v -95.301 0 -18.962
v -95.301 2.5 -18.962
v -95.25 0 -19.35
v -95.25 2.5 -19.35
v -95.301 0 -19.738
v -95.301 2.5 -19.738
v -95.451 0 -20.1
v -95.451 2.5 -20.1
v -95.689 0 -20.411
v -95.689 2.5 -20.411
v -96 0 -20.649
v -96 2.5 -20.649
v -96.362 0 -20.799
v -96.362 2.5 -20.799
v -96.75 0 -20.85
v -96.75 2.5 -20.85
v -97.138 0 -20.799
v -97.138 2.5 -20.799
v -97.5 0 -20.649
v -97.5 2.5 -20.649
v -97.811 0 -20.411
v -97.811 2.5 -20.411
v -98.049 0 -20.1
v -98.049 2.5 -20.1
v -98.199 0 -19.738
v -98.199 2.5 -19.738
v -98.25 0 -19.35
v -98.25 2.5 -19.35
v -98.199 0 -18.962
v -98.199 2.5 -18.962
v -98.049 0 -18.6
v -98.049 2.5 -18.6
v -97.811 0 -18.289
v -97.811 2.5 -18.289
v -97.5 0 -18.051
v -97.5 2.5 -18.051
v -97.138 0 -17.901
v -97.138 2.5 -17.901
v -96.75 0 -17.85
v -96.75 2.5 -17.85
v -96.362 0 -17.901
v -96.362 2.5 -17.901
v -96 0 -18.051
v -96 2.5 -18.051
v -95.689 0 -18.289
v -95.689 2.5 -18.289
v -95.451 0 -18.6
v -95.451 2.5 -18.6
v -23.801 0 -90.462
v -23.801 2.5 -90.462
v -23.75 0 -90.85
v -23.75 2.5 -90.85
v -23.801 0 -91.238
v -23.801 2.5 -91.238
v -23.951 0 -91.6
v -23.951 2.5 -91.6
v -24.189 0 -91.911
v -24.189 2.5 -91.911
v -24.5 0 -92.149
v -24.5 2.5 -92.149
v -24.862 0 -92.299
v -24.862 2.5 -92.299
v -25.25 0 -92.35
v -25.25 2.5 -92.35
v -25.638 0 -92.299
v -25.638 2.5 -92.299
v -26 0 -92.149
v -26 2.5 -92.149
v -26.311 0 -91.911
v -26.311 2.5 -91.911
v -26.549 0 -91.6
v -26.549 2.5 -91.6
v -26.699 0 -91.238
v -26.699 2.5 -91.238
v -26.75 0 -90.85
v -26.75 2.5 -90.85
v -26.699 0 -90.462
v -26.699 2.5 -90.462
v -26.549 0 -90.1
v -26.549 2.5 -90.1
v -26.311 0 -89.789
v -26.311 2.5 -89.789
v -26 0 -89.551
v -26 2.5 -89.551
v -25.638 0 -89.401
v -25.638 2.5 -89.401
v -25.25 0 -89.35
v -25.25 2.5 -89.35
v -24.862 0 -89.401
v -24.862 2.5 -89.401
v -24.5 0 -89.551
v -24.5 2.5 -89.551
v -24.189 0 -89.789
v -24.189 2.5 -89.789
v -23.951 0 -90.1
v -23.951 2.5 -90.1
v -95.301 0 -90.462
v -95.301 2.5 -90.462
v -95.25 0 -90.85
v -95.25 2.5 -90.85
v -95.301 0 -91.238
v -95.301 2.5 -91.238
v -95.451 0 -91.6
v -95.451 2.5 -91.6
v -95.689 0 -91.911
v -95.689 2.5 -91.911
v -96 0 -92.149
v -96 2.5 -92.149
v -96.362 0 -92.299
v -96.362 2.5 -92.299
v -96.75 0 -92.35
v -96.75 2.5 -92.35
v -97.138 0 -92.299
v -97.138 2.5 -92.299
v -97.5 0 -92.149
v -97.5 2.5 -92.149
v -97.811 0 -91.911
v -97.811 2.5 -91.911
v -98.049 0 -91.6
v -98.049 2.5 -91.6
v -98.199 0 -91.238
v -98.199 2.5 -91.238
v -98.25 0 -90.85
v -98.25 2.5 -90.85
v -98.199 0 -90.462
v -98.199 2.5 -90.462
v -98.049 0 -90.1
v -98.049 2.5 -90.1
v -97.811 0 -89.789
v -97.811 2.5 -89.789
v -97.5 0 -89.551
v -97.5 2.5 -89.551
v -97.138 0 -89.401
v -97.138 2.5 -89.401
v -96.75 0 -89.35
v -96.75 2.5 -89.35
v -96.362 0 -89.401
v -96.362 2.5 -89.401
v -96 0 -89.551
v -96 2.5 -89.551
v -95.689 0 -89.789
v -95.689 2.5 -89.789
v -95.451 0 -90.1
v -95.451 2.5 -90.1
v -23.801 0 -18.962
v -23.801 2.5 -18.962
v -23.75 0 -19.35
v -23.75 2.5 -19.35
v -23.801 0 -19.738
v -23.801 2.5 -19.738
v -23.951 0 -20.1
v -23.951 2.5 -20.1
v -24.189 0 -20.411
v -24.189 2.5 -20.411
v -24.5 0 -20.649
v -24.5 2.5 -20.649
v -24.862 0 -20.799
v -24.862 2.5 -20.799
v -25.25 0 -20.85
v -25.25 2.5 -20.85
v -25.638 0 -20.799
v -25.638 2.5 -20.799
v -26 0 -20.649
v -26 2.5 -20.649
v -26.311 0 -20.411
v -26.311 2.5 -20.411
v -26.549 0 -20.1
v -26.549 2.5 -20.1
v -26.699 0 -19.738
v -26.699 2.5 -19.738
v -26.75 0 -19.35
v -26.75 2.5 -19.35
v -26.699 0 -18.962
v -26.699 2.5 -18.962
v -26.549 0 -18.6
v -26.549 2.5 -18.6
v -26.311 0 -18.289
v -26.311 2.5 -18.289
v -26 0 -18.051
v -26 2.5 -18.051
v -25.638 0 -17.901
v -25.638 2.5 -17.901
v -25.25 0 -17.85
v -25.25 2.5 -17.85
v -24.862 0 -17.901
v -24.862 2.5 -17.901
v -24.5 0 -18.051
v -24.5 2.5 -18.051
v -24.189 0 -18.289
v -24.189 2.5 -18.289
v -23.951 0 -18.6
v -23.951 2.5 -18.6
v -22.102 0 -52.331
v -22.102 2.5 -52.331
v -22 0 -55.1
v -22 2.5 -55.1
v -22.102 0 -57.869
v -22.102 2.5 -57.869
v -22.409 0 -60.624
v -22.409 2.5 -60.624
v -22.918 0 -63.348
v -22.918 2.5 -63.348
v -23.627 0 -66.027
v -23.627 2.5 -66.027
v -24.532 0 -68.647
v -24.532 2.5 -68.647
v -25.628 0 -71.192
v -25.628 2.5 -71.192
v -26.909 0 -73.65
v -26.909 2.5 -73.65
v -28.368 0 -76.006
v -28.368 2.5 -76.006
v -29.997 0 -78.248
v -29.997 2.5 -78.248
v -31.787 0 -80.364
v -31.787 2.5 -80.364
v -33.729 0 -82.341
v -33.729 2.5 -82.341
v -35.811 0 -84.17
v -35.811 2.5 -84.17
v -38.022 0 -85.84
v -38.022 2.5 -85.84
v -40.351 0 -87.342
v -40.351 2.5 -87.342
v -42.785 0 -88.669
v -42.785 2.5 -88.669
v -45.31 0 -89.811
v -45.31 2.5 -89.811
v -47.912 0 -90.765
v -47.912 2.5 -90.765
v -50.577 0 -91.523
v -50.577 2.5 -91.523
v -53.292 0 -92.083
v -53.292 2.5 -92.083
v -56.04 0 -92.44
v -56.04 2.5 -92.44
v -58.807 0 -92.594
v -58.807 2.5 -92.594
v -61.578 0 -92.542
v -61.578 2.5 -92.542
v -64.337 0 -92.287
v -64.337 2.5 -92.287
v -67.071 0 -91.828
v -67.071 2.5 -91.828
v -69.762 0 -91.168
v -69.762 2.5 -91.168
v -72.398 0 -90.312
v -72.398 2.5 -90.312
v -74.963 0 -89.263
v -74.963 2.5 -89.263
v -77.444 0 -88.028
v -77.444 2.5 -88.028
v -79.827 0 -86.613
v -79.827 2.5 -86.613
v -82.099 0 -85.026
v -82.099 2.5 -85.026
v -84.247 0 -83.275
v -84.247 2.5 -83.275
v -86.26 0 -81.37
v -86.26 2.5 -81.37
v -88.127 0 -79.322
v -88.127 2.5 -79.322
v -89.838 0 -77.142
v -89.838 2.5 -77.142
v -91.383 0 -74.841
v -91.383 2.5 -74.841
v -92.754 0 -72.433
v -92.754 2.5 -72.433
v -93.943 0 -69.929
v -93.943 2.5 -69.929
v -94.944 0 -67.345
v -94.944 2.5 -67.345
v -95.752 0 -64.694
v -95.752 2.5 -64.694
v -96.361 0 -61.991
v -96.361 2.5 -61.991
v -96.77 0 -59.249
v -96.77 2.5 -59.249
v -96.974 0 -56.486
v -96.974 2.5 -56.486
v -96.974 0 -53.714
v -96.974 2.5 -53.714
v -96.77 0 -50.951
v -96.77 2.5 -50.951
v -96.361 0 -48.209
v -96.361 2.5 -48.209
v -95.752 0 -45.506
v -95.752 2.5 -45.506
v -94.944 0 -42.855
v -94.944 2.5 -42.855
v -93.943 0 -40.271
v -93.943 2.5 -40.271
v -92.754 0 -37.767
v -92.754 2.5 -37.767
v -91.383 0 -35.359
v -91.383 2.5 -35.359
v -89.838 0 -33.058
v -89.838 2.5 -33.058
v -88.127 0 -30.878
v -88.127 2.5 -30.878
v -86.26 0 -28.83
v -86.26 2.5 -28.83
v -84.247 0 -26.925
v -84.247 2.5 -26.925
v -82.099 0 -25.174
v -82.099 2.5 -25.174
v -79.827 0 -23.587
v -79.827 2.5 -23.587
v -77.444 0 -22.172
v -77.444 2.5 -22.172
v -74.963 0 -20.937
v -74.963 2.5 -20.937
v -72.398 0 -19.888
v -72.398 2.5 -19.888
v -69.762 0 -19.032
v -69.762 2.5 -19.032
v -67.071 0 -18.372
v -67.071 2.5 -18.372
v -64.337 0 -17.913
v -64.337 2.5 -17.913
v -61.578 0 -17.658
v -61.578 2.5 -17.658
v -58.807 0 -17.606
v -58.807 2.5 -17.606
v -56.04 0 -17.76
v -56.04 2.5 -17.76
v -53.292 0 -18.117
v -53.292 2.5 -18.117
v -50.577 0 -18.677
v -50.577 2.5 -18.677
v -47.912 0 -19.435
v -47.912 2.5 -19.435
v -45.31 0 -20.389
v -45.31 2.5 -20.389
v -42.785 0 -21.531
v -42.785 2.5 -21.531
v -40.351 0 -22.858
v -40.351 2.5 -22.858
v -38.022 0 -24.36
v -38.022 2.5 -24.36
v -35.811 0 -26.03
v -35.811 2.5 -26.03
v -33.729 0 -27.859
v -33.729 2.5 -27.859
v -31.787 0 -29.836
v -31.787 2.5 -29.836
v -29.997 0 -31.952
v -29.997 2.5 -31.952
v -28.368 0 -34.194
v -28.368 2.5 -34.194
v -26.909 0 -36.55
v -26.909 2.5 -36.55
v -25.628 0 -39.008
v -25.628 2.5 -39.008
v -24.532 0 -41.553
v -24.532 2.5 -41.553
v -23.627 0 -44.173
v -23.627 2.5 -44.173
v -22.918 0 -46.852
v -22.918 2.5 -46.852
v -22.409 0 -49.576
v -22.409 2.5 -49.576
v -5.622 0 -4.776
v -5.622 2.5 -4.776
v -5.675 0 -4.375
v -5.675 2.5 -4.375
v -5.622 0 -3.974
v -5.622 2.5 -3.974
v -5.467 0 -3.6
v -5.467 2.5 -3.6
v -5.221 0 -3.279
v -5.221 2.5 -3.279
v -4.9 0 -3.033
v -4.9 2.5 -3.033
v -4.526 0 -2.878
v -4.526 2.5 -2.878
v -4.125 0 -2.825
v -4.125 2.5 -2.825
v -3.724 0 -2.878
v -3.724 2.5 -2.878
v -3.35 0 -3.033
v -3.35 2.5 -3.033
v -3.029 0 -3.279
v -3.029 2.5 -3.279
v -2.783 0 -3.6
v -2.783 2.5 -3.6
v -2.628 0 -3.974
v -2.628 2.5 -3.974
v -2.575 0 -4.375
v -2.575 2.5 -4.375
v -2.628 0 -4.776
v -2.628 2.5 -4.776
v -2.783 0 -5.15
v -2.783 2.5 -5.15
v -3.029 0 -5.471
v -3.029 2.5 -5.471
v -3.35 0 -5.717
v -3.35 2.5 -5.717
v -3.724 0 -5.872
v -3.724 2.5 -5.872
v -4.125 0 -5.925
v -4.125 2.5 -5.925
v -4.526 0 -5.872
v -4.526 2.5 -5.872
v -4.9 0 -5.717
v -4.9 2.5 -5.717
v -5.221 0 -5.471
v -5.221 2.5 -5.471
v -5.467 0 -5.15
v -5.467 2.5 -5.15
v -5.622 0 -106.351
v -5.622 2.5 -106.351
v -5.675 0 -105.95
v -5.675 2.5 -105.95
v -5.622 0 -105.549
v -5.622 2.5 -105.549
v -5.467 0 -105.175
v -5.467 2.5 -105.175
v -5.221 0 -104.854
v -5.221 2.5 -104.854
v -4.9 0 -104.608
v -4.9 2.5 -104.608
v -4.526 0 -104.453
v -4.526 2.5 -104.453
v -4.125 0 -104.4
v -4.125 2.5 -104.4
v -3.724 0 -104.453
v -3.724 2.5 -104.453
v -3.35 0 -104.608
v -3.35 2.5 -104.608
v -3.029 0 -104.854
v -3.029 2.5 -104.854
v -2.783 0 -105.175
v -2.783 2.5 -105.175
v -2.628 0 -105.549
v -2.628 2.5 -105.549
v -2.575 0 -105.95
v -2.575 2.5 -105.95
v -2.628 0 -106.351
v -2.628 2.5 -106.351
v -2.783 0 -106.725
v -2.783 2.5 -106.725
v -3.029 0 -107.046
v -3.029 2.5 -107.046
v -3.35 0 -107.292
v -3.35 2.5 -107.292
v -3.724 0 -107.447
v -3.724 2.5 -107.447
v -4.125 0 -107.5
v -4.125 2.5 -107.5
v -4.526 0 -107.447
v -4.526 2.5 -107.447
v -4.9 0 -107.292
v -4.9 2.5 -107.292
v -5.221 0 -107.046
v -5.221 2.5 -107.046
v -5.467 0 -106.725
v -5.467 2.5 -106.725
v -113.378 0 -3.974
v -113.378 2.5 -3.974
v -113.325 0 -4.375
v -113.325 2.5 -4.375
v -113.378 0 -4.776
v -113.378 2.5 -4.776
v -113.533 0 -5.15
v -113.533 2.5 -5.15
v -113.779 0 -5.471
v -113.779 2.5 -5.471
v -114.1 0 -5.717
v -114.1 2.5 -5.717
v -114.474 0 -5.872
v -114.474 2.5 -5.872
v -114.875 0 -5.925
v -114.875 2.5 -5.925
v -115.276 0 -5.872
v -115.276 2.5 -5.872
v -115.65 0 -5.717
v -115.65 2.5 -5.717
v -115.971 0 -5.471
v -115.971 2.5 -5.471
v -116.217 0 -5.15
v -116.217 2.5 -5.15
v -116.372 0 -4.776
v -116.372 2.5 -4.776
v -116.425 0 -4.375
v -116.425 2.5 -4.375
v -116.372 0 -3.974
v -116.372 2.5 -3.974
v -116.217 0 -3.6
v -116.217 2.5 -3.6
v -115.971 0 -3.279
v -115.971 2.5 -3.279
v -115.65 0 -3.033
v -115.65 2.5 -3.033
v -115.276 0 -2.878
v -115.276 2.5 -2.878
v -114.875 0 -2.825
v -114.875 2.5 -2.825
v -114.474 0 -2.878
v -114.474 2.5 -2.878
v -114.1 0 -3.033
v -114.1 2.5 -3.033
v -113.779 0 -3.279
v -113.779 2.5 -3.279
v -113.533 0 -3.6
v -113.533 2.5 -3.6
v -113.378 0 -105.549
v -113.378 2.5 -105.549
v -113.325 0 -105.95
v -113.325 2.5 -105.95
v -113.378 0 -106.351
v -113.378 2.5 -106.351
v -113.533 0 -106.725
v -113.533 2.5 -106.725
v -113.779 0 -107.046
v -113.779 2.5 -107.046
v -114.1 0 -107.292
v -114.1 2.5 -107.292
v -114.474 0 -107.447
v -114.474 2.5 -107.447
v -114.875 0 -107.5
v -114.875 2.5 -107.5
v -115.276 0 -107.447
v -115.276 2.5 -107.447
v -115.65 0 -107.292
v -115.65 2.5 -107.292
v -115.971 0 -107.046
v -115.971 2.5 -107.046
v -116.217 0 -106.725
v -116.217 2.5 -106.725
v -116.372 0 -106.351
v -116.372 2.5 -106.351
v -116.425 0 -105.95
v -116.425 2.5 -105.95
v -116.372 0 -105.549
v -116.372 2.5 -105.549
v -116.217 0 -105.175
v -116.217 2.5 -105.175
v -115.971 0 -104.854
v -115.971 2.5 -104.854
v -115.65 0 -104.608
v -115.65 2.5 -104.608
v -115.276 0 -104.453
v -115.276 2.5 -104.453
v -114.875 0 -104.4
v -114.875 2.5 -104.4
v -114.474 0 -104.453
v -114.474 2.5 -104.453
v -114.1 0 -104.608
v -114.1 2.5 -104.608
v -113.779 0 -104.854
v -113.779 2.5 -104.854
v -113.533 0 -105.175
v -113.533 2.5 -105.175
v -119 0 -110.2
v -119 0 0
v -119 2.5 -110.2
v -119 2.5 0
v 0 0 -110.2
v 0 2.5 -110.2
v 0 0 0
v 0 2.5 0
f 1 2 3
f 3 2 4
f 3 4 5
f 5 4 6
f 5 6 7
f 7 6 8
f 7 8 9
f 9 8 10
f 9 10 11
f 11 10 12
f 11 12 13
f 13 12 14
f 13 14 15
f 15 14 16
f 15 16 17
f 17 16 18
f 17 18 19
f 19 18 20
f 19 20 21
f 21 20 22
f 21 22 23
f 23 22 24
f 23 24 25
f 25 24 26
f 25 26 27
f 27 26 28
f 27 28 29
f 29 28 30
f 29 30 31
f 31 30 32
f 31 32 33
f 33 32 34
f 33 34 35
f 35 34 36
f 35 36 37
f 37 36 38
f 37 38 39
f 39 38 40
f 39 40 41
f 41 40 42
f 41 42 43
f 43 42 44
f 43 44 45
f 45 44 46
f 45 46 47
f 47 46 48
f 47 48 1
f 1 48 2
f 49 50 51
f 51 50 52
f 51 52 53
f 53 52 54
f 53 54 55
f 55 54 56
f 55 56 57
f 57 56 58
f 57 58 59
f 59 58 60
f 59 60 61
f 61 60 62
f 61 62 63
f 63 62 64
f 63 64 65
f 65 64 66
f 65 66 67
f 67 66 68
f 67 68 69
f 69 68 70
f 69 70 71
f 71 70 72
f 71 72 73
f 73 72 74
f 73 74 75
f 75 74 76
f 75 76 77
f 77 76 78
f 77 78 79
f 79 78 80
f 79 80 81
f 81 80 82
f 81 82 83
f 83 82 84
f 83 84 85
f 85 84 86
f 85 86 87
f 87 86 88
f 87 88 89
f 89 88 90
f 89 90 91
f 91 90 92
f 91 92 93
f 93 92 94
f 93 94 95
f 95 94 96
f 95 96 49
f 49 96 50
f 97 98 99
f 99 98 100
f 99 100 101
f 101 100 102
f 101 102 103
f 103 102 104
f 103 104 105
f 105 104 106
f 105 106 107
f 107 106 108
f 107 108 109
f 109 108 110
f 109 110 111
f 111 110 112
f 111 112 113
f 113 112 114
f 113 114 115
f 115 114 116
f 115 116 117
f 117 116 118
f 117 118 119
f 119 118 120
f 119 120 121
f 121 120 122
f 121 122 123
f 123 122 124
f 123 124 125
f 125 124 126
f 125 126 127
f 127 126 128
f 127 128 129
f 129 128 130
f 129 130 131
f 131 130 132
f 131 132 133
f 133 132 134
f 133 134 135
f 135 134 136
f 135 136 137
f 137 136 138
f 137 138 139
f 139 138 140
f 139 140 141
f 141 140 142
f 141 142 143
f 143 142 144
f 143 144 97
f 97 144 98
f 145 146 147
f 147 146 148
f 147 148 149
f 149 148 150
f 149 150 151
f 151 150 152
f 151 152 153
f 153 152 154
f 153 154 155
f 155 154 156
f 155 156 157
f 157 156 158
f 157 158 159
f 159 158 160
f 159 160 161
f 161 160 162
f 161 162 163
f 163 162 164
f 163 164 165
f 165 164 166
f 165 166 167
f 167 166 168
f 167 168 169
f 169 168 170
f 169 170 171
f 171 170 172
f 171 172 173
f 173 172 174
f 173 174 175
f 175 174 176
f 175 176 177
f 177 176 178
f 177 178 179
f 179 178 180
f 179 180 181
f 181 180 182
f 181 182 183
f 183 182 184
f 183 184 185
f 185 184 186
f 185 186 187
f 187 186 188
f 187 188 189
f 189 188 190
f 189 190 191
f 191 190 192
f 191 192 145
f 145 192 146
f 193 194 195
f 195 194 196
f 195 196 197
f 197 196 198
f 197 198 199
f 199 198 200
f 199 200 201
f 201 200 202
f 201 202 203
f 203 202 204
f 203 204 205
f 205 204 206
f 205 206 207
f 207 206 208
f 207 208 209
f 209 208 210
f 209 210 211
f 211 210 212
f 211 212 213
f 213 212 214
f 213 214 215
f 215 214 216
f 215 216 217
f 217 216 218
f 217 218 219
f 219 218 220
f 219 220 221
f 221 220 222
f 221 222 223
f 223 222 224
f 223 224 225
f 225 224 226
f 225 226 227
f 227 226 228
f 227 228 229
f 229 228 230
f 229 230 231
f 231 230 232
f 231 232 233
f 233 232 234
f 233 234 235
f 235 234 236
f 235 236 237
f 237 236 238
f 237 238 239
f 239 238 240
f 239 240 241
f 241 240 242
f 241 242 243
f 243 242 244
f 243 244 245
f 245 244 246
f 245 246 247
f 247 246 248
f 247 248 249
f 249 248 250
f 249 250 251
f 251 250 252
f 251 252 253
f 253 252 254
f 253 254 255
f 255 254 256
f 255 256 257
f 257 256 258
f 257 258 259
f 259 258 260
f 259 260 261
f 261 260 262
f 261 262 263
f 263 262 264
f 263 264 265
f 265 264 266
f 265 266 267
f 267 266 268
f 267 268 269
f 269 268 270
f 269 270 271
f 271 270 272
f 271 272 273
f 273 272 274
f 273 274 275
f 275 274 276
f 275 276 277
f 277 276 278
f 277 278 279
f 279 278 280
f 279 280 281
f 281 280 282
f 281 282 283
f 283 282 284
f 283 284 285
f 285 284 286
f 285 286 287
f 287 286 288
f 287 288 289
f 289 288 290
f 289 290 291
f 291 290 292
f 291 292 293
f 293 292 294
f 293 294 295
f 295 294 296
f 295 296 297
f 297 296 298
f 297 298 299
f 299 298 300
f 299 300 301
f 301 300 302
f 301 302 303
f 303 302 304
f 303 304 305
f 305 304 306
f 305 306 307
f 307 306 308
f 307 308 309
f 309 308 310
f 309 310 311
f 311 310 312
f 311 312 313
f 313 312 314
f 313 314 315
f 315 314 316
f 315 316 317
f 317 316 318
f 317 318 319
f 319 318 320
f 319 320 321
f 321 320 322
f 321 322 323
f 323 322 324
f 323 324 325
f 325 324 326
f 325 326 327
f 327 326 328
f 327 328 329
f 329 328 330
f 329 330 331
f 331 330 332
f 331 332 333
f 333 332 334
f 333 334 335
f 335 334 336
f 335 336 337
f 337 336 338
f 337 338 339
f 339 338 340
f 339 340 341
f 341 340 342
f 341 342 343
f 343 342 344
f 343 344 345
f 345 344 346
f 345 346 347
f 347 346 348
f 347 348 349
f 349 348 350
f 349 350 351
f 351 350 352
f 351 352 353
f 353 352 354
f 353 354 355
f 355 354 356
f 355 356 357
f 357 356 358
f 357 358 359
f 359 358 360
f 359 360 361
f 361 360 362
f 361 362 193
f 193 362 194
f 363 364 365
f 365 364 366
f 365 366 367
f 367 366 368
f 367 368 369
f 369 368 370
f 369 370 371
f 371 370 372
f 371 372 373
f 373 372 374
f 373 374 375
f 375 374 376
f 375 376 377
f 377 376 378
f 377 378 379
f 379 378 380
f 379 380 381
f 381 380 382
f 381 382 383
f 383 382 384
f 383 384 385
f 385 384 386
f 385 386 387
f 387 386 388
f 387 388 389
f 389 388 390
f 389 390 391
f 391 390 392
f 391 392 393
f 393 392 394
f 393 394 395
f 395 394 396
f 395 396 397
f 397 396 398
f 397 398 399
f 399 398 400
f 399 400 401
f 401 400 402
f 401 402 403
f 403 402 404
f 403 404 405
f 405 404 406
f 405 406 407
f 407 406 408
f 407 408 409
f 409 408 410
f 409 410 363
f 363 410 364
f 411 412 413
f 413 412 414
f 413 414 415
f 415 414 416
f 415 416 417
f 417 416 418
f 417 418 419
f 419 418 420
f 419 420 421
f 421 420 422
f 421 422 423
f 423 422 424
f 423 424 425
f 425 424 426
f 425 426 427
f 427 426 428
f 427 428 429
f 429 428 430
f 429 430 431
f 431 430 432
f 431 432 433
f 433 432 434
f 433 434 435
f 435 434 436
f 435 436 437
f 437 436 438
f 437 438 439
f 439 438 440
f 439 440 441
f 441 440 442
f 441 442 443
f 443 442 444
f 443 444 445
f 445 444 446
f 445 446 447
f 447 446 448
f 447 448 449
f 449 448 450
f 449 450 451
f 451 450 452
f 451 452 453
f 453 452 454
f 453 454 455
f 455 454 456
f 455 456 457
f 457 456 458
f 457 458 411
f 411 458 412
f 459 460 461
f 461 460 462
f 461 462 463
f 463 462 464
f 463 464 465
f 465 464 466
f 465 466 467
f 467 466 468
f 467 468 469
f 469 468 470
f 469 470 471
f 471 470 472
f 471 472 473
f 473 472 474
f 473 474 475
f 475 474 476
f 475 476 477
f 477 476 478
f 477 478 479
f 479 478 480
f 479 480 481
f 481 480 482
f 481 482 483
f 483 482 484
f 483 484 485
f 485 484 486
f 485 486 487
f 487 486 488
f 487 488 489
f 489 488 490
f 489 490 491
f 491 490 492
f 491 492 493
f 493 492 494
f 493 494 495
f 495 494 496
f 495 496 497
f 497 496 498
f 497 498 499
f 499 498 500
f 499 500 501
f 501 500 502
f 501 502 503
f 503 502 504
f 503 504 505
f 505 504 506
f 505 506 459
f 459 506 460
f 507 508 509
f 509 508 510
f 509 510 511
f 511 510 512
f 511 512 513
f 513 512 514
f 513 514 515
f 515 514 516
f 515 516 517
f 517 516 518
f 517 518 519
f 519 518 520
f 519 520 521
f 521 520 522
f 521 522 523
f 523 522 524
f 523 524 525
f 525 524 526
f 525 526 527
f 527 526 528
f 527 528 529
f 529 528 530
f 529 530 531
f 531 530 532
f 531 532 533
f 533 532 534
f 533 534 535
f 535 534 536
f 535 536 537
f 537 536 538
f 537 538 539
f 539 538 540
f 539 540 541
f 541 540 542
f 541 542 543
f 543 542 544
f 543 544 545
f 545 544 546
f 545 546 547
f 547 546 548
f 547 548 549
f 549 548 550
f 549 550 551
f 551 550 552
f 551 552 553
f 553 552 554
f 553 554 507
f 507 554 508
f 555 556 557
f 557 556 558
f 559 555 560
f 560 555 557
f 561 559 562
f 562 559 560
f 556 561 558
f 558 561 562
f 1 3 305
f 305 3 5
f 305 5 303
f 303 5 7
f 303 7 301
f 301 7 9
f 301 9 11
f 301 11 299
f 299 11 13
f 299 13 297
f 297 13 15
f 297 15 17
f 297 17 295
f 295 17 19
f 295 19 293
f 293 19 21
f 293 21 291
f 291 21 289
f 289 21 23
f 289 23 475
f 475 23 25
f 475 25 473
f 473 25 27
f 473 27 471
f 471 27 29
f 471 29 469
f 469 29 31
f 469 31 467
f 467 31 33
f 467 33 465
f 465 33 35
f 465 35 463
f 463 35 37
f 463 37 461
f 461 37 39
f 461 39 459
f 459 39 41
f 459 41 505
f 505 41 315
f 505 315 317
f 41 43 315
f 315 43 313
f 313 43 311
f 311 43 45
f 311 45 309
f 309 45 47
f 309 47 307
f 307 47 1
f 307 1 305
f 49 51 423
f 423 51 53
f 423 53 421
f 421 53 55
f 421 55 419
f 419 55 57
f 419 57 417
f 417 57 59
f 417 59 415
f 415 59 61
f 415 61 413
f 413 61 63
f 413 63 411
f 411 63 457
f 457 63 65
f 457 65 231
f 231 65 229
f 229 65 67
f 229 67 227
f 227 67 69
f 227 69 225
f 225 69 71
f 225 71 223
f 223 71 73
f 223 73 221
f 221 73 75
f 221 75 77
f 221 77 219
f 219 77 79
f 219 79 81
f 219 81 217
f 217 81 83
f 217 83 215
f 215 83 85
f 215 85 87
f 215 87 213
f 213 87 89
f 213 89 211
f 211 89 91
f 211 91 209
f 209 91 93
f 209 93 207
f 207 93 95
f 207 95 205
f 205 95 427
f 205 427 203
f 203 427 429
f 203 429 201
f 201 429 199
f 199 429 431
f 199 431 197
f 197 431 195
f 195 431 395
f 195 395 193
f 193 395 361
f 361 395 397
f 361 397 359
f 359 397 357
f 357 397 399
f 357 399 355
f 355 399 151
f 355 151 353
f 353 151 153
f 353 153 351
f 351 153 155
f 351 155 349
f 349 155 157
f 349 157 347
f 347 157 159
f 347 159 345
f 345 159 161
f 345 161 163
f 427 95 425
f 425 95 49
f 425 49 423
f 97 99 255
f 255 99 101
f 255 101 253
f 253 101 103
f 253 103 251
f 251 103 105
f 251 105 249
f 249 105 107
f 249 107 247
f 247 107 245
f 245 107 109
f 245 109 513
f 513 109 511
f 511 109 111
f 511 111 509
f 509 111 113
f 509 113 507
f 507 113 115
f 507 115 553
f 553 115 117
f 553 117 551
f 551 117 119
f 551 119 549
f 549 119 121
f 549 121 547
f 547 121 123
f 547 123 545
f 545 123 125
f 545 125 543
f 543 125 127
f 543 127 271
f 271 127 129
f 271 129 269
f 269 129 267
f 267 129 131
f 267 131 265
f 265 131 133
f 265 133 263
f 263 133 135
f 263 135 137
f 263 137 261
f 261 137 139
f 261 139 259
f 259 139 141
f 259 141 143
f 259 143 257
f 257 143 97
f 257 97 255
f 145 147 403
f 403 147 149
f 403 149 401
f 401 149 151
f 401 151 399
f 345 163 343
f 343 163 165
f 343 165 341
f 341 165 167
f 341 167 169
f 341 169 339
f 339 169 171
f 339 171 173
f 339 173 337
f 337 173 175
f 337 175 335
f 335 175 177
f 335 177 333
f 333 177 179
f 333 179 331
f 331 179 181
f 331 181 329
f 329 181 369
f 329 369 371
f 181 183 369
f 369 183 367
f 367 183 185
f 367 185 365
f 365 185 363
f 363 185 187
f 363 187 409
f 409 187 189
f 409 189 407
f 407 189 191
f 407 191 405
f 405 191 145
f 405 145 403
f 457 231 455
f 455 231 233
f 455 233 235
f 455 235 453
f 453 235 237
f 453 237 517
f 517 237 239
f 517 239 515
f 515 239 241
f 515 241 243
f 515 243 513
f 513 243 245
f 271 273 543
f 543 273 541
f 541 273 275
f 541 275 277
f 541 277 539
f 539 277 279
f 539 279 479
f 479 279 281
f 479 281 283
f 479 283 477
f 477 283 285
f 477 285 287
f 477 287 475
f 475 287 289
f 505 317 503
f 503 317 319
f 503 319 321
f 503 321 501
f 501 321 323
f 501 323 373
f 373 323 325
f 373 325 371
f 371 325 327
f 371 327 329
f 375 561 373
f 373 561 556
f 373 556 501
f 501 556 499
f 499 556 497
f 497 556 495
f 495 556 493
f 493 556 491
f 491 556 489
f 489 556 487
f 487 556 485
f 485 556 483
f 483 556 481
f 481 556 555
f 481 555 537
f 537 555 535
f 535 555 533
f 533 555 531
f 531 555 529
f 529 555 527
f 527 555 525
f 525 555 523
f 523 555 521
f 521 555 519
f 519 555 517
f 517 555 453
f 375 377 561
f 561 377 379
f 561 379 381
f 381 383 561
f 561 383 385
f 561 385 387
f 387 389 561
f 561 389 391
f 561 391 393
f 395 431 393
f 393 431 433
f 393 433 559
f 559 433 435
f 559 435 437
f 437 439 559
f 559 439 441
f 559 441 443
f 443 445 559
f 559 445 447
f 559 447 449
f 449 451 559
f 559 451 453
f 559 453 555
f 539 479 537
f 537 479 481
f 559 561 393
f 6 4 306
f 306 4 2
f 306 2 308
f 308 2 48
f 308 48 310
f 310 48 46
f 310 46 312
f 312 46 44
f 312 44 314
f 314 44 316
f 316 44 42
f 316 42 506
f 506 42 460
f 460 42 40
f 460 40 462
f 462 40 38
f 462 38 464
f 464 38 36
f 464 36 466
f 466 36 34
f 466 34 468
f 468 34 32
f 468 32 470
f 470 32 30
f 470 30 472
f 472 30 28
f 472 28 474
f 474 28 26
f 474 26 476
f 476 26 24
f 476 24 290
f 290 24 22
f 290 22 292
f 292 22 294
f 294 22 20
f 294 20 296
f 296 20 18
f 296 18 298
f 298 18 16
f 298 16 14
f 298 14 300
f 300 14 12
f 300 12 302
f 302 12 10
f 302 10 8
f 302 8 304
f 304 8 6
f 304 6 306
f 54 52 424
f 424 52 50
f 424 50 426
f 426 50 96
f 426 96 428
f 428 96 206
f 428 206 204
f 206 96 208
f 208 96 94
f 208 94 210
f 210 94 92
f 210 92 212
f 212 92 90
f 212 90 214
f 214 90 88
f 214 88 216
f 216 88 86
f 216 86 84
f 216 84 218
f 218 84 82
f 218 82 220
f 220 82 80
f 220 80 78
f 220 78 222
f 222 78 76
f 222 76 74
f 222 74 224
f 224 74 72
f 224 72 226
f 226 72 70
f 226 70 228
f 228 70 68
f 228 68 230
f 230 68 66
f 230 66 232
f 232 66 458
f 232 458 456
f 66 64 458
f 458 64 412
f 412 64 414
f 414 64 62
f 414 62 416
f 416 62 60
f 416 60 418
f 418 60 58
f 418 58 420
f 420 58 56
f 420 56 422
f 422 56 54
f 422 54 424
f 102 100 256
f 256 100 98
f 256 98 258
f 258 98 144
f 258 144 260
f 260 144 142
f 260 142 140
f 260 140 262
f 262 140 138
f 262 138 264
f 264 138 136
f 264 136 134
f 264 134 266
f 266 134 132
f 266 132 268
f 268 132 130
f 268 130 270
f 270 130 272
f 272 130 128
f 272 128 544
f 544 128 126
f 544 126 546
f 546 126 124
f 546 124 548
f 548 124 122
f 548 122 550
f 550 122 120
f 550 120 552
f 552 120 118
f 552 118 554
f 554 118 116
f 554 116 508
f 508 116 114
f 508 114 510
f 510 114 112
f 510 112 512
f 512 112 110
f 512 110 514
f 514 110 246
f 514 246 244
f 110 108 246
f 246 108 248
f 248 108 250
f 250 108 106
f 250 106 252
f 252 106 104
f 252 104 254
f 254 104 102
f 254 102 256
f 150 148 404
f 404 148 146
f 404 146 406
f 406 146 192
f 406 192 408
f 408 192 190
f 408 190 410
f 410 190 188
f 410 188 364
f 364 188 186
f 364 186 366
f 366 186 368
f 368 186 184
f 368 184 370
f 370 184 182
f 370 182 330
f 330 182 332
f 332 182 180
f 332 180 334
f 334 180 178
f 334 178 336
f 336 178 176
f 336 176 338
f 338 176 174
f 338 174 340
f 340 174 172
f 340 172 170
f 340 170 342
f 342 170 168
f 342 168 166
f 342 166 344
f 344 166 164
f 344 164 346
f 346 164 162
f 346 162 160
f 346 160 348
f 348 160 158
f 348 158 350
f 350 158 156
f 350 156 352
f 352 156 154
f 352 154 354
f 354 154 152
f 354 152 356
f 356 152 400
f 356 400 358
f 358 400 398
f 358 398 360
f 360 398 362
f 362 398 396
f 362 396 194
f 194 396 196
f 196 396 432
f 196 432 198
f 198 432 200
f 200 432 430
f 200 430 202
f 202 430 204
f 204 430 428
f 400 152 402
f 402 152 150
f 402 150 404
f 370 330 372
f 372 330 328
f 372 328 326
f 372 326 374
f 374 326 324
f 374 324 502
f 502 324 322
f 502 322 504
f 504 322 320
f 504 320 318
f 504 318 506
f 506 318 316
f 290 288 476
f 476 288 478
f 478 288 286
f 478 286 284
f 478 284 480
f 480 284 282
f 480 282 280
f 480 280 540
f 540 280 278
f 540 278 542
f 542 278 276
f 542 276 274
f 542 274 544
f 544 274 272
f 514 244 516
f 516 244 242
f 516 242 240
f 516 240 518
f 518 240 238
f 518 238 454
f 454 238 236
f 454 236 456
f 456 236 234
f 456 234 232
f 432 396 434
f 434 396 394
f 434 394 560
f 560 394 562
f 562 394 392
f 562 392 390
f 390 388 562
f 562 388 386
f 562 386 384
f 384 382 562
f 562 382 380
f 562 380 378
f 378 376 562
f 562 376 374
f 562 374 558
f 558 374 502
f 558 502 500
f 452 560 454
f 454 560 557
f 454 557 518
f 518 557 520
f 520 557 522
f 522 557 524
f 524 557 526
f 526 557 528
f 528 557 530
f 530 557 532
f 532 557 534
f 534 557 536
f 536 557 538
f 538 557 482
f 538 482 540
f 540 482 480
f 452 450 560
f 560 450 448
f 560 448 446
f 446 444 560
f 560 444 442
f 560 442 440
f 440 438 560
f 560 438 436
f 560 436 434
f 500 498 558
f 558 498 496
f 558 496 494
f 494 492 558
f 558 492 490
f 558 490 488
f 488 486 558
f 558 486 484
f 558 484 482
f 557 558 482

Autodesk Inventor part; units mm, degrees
ref_plane "YZ Plane" through (0, 0, 0) normal (1, 0, 0) x (0, 1, 0)
ref_plane "XZ Plane" through (0, 0, 0) normal (0, 1, 0) x (-1, 0, 0)
sketch "Sketch1" plane through (0, 0, 0) normal (0, 1, 0) x (-1, 0, 0)
  line L0 (0, 0) -> (119, 0)
  line L1 (119, 0) -> (119, -110.2)
  line L2 (119, -110.2) -> (0, -110.2)
  line L3 (0, -110.2) -> (0, 0)
  dimension "d0" = 119
  dimension "d1" = 110.2
extrude "Extrusion1" add sketch "Sketch1" along normal blind 2.5
sketch "Sketch2" plane through (0, 2.5, 0) normal (0, 1, 0) x (1, 0, 0)
  line L0 (-119, 0) -> (0, 0) projected
  line L1 (0, 0) -> (0, 110.2) projected
  line L2 (0, 110.2) -> (-119, 110.2) projected
  line L3 (-119, 110.2) -> (-119, 0) projected
  circle A0 centre (-114.875, 4.375) radius 1.55
  circle A1 centre (-11.5301, 10.067) radius 1.55
  circle A2 centre (-11.5301, 99.7072) radius 1.55
  circle A3 centre (-114.875, 105.95) radius 1.55
  dimension "d4" = 3.1
  dimension "d5" = 3.1
  dimension "d6" = 3.1
  dimension "d7" = 3.1
  dimension "d8" = 4.375
  dimension "d9" = 4.125
  dimension "d10" = 4.25
  dimension "d11" = 4.125
extrude "Extrusion2" cut sketch "Sketch2" against normal through all contours A0 | A3
ref_plane "Work Plane1" through (-59.5, 0, 0) normal (1, 0, 0) x (0, 0, -1)
mirror "Mirror1" about plane through (-59.5, 0, 0) normal (1, 0, 0) of "Extrusion2"
sketch "Sketch3" plane through (0, 2.5, 0) normal (0, 1, 0) x (1, 0, 0)
  circle A0 centre (-4.125, 4.375) radius 1.55 projected
  circle A1 centre (-4.125, 105.95) radius 1.55 projected
  circle A2 centre (-114.875, 4.375) radius 1.55 projected
  circle A3 centre (-114.875, 105.95) radius 1.55 projected
  line L0 (-119, 0) -> (0, 0) projected
  line L1 (0, 0) -> (0, 110.2) projected
  line L2 (0, 110.2) -> (-119, 110.2) projected
  line L3 (-119, 110.2) -> (-119, 0) projected
  circle A4 centre (-59.5, 55.1) radius 37.5
  circle A5 centre (-96.75, 90.85) radius 1.5
  circle A6 centre (-25.25, 90.85) radius 1.5
  circle A7 centre (-25.25, 19.35) radius 1.5
  circle A8 centre (-96.75, 19.35) radius 1.5
  dimension "d32" = 3
  dimension "d33" = 3
  dimension "d34" = 3
  dimension "d35" = 3
  dimension "d36" = 71.5
  dimension "d37" = 71.5
  dimension "d38" = 71.5
  dimension "d39" = 71.5
extrude "Extrusion3" cut sketch "Sketch3" against normal through all contours A4 | A5 | A6 | A7 | A8
properties part number "Base Cover Left 80mm fan"
